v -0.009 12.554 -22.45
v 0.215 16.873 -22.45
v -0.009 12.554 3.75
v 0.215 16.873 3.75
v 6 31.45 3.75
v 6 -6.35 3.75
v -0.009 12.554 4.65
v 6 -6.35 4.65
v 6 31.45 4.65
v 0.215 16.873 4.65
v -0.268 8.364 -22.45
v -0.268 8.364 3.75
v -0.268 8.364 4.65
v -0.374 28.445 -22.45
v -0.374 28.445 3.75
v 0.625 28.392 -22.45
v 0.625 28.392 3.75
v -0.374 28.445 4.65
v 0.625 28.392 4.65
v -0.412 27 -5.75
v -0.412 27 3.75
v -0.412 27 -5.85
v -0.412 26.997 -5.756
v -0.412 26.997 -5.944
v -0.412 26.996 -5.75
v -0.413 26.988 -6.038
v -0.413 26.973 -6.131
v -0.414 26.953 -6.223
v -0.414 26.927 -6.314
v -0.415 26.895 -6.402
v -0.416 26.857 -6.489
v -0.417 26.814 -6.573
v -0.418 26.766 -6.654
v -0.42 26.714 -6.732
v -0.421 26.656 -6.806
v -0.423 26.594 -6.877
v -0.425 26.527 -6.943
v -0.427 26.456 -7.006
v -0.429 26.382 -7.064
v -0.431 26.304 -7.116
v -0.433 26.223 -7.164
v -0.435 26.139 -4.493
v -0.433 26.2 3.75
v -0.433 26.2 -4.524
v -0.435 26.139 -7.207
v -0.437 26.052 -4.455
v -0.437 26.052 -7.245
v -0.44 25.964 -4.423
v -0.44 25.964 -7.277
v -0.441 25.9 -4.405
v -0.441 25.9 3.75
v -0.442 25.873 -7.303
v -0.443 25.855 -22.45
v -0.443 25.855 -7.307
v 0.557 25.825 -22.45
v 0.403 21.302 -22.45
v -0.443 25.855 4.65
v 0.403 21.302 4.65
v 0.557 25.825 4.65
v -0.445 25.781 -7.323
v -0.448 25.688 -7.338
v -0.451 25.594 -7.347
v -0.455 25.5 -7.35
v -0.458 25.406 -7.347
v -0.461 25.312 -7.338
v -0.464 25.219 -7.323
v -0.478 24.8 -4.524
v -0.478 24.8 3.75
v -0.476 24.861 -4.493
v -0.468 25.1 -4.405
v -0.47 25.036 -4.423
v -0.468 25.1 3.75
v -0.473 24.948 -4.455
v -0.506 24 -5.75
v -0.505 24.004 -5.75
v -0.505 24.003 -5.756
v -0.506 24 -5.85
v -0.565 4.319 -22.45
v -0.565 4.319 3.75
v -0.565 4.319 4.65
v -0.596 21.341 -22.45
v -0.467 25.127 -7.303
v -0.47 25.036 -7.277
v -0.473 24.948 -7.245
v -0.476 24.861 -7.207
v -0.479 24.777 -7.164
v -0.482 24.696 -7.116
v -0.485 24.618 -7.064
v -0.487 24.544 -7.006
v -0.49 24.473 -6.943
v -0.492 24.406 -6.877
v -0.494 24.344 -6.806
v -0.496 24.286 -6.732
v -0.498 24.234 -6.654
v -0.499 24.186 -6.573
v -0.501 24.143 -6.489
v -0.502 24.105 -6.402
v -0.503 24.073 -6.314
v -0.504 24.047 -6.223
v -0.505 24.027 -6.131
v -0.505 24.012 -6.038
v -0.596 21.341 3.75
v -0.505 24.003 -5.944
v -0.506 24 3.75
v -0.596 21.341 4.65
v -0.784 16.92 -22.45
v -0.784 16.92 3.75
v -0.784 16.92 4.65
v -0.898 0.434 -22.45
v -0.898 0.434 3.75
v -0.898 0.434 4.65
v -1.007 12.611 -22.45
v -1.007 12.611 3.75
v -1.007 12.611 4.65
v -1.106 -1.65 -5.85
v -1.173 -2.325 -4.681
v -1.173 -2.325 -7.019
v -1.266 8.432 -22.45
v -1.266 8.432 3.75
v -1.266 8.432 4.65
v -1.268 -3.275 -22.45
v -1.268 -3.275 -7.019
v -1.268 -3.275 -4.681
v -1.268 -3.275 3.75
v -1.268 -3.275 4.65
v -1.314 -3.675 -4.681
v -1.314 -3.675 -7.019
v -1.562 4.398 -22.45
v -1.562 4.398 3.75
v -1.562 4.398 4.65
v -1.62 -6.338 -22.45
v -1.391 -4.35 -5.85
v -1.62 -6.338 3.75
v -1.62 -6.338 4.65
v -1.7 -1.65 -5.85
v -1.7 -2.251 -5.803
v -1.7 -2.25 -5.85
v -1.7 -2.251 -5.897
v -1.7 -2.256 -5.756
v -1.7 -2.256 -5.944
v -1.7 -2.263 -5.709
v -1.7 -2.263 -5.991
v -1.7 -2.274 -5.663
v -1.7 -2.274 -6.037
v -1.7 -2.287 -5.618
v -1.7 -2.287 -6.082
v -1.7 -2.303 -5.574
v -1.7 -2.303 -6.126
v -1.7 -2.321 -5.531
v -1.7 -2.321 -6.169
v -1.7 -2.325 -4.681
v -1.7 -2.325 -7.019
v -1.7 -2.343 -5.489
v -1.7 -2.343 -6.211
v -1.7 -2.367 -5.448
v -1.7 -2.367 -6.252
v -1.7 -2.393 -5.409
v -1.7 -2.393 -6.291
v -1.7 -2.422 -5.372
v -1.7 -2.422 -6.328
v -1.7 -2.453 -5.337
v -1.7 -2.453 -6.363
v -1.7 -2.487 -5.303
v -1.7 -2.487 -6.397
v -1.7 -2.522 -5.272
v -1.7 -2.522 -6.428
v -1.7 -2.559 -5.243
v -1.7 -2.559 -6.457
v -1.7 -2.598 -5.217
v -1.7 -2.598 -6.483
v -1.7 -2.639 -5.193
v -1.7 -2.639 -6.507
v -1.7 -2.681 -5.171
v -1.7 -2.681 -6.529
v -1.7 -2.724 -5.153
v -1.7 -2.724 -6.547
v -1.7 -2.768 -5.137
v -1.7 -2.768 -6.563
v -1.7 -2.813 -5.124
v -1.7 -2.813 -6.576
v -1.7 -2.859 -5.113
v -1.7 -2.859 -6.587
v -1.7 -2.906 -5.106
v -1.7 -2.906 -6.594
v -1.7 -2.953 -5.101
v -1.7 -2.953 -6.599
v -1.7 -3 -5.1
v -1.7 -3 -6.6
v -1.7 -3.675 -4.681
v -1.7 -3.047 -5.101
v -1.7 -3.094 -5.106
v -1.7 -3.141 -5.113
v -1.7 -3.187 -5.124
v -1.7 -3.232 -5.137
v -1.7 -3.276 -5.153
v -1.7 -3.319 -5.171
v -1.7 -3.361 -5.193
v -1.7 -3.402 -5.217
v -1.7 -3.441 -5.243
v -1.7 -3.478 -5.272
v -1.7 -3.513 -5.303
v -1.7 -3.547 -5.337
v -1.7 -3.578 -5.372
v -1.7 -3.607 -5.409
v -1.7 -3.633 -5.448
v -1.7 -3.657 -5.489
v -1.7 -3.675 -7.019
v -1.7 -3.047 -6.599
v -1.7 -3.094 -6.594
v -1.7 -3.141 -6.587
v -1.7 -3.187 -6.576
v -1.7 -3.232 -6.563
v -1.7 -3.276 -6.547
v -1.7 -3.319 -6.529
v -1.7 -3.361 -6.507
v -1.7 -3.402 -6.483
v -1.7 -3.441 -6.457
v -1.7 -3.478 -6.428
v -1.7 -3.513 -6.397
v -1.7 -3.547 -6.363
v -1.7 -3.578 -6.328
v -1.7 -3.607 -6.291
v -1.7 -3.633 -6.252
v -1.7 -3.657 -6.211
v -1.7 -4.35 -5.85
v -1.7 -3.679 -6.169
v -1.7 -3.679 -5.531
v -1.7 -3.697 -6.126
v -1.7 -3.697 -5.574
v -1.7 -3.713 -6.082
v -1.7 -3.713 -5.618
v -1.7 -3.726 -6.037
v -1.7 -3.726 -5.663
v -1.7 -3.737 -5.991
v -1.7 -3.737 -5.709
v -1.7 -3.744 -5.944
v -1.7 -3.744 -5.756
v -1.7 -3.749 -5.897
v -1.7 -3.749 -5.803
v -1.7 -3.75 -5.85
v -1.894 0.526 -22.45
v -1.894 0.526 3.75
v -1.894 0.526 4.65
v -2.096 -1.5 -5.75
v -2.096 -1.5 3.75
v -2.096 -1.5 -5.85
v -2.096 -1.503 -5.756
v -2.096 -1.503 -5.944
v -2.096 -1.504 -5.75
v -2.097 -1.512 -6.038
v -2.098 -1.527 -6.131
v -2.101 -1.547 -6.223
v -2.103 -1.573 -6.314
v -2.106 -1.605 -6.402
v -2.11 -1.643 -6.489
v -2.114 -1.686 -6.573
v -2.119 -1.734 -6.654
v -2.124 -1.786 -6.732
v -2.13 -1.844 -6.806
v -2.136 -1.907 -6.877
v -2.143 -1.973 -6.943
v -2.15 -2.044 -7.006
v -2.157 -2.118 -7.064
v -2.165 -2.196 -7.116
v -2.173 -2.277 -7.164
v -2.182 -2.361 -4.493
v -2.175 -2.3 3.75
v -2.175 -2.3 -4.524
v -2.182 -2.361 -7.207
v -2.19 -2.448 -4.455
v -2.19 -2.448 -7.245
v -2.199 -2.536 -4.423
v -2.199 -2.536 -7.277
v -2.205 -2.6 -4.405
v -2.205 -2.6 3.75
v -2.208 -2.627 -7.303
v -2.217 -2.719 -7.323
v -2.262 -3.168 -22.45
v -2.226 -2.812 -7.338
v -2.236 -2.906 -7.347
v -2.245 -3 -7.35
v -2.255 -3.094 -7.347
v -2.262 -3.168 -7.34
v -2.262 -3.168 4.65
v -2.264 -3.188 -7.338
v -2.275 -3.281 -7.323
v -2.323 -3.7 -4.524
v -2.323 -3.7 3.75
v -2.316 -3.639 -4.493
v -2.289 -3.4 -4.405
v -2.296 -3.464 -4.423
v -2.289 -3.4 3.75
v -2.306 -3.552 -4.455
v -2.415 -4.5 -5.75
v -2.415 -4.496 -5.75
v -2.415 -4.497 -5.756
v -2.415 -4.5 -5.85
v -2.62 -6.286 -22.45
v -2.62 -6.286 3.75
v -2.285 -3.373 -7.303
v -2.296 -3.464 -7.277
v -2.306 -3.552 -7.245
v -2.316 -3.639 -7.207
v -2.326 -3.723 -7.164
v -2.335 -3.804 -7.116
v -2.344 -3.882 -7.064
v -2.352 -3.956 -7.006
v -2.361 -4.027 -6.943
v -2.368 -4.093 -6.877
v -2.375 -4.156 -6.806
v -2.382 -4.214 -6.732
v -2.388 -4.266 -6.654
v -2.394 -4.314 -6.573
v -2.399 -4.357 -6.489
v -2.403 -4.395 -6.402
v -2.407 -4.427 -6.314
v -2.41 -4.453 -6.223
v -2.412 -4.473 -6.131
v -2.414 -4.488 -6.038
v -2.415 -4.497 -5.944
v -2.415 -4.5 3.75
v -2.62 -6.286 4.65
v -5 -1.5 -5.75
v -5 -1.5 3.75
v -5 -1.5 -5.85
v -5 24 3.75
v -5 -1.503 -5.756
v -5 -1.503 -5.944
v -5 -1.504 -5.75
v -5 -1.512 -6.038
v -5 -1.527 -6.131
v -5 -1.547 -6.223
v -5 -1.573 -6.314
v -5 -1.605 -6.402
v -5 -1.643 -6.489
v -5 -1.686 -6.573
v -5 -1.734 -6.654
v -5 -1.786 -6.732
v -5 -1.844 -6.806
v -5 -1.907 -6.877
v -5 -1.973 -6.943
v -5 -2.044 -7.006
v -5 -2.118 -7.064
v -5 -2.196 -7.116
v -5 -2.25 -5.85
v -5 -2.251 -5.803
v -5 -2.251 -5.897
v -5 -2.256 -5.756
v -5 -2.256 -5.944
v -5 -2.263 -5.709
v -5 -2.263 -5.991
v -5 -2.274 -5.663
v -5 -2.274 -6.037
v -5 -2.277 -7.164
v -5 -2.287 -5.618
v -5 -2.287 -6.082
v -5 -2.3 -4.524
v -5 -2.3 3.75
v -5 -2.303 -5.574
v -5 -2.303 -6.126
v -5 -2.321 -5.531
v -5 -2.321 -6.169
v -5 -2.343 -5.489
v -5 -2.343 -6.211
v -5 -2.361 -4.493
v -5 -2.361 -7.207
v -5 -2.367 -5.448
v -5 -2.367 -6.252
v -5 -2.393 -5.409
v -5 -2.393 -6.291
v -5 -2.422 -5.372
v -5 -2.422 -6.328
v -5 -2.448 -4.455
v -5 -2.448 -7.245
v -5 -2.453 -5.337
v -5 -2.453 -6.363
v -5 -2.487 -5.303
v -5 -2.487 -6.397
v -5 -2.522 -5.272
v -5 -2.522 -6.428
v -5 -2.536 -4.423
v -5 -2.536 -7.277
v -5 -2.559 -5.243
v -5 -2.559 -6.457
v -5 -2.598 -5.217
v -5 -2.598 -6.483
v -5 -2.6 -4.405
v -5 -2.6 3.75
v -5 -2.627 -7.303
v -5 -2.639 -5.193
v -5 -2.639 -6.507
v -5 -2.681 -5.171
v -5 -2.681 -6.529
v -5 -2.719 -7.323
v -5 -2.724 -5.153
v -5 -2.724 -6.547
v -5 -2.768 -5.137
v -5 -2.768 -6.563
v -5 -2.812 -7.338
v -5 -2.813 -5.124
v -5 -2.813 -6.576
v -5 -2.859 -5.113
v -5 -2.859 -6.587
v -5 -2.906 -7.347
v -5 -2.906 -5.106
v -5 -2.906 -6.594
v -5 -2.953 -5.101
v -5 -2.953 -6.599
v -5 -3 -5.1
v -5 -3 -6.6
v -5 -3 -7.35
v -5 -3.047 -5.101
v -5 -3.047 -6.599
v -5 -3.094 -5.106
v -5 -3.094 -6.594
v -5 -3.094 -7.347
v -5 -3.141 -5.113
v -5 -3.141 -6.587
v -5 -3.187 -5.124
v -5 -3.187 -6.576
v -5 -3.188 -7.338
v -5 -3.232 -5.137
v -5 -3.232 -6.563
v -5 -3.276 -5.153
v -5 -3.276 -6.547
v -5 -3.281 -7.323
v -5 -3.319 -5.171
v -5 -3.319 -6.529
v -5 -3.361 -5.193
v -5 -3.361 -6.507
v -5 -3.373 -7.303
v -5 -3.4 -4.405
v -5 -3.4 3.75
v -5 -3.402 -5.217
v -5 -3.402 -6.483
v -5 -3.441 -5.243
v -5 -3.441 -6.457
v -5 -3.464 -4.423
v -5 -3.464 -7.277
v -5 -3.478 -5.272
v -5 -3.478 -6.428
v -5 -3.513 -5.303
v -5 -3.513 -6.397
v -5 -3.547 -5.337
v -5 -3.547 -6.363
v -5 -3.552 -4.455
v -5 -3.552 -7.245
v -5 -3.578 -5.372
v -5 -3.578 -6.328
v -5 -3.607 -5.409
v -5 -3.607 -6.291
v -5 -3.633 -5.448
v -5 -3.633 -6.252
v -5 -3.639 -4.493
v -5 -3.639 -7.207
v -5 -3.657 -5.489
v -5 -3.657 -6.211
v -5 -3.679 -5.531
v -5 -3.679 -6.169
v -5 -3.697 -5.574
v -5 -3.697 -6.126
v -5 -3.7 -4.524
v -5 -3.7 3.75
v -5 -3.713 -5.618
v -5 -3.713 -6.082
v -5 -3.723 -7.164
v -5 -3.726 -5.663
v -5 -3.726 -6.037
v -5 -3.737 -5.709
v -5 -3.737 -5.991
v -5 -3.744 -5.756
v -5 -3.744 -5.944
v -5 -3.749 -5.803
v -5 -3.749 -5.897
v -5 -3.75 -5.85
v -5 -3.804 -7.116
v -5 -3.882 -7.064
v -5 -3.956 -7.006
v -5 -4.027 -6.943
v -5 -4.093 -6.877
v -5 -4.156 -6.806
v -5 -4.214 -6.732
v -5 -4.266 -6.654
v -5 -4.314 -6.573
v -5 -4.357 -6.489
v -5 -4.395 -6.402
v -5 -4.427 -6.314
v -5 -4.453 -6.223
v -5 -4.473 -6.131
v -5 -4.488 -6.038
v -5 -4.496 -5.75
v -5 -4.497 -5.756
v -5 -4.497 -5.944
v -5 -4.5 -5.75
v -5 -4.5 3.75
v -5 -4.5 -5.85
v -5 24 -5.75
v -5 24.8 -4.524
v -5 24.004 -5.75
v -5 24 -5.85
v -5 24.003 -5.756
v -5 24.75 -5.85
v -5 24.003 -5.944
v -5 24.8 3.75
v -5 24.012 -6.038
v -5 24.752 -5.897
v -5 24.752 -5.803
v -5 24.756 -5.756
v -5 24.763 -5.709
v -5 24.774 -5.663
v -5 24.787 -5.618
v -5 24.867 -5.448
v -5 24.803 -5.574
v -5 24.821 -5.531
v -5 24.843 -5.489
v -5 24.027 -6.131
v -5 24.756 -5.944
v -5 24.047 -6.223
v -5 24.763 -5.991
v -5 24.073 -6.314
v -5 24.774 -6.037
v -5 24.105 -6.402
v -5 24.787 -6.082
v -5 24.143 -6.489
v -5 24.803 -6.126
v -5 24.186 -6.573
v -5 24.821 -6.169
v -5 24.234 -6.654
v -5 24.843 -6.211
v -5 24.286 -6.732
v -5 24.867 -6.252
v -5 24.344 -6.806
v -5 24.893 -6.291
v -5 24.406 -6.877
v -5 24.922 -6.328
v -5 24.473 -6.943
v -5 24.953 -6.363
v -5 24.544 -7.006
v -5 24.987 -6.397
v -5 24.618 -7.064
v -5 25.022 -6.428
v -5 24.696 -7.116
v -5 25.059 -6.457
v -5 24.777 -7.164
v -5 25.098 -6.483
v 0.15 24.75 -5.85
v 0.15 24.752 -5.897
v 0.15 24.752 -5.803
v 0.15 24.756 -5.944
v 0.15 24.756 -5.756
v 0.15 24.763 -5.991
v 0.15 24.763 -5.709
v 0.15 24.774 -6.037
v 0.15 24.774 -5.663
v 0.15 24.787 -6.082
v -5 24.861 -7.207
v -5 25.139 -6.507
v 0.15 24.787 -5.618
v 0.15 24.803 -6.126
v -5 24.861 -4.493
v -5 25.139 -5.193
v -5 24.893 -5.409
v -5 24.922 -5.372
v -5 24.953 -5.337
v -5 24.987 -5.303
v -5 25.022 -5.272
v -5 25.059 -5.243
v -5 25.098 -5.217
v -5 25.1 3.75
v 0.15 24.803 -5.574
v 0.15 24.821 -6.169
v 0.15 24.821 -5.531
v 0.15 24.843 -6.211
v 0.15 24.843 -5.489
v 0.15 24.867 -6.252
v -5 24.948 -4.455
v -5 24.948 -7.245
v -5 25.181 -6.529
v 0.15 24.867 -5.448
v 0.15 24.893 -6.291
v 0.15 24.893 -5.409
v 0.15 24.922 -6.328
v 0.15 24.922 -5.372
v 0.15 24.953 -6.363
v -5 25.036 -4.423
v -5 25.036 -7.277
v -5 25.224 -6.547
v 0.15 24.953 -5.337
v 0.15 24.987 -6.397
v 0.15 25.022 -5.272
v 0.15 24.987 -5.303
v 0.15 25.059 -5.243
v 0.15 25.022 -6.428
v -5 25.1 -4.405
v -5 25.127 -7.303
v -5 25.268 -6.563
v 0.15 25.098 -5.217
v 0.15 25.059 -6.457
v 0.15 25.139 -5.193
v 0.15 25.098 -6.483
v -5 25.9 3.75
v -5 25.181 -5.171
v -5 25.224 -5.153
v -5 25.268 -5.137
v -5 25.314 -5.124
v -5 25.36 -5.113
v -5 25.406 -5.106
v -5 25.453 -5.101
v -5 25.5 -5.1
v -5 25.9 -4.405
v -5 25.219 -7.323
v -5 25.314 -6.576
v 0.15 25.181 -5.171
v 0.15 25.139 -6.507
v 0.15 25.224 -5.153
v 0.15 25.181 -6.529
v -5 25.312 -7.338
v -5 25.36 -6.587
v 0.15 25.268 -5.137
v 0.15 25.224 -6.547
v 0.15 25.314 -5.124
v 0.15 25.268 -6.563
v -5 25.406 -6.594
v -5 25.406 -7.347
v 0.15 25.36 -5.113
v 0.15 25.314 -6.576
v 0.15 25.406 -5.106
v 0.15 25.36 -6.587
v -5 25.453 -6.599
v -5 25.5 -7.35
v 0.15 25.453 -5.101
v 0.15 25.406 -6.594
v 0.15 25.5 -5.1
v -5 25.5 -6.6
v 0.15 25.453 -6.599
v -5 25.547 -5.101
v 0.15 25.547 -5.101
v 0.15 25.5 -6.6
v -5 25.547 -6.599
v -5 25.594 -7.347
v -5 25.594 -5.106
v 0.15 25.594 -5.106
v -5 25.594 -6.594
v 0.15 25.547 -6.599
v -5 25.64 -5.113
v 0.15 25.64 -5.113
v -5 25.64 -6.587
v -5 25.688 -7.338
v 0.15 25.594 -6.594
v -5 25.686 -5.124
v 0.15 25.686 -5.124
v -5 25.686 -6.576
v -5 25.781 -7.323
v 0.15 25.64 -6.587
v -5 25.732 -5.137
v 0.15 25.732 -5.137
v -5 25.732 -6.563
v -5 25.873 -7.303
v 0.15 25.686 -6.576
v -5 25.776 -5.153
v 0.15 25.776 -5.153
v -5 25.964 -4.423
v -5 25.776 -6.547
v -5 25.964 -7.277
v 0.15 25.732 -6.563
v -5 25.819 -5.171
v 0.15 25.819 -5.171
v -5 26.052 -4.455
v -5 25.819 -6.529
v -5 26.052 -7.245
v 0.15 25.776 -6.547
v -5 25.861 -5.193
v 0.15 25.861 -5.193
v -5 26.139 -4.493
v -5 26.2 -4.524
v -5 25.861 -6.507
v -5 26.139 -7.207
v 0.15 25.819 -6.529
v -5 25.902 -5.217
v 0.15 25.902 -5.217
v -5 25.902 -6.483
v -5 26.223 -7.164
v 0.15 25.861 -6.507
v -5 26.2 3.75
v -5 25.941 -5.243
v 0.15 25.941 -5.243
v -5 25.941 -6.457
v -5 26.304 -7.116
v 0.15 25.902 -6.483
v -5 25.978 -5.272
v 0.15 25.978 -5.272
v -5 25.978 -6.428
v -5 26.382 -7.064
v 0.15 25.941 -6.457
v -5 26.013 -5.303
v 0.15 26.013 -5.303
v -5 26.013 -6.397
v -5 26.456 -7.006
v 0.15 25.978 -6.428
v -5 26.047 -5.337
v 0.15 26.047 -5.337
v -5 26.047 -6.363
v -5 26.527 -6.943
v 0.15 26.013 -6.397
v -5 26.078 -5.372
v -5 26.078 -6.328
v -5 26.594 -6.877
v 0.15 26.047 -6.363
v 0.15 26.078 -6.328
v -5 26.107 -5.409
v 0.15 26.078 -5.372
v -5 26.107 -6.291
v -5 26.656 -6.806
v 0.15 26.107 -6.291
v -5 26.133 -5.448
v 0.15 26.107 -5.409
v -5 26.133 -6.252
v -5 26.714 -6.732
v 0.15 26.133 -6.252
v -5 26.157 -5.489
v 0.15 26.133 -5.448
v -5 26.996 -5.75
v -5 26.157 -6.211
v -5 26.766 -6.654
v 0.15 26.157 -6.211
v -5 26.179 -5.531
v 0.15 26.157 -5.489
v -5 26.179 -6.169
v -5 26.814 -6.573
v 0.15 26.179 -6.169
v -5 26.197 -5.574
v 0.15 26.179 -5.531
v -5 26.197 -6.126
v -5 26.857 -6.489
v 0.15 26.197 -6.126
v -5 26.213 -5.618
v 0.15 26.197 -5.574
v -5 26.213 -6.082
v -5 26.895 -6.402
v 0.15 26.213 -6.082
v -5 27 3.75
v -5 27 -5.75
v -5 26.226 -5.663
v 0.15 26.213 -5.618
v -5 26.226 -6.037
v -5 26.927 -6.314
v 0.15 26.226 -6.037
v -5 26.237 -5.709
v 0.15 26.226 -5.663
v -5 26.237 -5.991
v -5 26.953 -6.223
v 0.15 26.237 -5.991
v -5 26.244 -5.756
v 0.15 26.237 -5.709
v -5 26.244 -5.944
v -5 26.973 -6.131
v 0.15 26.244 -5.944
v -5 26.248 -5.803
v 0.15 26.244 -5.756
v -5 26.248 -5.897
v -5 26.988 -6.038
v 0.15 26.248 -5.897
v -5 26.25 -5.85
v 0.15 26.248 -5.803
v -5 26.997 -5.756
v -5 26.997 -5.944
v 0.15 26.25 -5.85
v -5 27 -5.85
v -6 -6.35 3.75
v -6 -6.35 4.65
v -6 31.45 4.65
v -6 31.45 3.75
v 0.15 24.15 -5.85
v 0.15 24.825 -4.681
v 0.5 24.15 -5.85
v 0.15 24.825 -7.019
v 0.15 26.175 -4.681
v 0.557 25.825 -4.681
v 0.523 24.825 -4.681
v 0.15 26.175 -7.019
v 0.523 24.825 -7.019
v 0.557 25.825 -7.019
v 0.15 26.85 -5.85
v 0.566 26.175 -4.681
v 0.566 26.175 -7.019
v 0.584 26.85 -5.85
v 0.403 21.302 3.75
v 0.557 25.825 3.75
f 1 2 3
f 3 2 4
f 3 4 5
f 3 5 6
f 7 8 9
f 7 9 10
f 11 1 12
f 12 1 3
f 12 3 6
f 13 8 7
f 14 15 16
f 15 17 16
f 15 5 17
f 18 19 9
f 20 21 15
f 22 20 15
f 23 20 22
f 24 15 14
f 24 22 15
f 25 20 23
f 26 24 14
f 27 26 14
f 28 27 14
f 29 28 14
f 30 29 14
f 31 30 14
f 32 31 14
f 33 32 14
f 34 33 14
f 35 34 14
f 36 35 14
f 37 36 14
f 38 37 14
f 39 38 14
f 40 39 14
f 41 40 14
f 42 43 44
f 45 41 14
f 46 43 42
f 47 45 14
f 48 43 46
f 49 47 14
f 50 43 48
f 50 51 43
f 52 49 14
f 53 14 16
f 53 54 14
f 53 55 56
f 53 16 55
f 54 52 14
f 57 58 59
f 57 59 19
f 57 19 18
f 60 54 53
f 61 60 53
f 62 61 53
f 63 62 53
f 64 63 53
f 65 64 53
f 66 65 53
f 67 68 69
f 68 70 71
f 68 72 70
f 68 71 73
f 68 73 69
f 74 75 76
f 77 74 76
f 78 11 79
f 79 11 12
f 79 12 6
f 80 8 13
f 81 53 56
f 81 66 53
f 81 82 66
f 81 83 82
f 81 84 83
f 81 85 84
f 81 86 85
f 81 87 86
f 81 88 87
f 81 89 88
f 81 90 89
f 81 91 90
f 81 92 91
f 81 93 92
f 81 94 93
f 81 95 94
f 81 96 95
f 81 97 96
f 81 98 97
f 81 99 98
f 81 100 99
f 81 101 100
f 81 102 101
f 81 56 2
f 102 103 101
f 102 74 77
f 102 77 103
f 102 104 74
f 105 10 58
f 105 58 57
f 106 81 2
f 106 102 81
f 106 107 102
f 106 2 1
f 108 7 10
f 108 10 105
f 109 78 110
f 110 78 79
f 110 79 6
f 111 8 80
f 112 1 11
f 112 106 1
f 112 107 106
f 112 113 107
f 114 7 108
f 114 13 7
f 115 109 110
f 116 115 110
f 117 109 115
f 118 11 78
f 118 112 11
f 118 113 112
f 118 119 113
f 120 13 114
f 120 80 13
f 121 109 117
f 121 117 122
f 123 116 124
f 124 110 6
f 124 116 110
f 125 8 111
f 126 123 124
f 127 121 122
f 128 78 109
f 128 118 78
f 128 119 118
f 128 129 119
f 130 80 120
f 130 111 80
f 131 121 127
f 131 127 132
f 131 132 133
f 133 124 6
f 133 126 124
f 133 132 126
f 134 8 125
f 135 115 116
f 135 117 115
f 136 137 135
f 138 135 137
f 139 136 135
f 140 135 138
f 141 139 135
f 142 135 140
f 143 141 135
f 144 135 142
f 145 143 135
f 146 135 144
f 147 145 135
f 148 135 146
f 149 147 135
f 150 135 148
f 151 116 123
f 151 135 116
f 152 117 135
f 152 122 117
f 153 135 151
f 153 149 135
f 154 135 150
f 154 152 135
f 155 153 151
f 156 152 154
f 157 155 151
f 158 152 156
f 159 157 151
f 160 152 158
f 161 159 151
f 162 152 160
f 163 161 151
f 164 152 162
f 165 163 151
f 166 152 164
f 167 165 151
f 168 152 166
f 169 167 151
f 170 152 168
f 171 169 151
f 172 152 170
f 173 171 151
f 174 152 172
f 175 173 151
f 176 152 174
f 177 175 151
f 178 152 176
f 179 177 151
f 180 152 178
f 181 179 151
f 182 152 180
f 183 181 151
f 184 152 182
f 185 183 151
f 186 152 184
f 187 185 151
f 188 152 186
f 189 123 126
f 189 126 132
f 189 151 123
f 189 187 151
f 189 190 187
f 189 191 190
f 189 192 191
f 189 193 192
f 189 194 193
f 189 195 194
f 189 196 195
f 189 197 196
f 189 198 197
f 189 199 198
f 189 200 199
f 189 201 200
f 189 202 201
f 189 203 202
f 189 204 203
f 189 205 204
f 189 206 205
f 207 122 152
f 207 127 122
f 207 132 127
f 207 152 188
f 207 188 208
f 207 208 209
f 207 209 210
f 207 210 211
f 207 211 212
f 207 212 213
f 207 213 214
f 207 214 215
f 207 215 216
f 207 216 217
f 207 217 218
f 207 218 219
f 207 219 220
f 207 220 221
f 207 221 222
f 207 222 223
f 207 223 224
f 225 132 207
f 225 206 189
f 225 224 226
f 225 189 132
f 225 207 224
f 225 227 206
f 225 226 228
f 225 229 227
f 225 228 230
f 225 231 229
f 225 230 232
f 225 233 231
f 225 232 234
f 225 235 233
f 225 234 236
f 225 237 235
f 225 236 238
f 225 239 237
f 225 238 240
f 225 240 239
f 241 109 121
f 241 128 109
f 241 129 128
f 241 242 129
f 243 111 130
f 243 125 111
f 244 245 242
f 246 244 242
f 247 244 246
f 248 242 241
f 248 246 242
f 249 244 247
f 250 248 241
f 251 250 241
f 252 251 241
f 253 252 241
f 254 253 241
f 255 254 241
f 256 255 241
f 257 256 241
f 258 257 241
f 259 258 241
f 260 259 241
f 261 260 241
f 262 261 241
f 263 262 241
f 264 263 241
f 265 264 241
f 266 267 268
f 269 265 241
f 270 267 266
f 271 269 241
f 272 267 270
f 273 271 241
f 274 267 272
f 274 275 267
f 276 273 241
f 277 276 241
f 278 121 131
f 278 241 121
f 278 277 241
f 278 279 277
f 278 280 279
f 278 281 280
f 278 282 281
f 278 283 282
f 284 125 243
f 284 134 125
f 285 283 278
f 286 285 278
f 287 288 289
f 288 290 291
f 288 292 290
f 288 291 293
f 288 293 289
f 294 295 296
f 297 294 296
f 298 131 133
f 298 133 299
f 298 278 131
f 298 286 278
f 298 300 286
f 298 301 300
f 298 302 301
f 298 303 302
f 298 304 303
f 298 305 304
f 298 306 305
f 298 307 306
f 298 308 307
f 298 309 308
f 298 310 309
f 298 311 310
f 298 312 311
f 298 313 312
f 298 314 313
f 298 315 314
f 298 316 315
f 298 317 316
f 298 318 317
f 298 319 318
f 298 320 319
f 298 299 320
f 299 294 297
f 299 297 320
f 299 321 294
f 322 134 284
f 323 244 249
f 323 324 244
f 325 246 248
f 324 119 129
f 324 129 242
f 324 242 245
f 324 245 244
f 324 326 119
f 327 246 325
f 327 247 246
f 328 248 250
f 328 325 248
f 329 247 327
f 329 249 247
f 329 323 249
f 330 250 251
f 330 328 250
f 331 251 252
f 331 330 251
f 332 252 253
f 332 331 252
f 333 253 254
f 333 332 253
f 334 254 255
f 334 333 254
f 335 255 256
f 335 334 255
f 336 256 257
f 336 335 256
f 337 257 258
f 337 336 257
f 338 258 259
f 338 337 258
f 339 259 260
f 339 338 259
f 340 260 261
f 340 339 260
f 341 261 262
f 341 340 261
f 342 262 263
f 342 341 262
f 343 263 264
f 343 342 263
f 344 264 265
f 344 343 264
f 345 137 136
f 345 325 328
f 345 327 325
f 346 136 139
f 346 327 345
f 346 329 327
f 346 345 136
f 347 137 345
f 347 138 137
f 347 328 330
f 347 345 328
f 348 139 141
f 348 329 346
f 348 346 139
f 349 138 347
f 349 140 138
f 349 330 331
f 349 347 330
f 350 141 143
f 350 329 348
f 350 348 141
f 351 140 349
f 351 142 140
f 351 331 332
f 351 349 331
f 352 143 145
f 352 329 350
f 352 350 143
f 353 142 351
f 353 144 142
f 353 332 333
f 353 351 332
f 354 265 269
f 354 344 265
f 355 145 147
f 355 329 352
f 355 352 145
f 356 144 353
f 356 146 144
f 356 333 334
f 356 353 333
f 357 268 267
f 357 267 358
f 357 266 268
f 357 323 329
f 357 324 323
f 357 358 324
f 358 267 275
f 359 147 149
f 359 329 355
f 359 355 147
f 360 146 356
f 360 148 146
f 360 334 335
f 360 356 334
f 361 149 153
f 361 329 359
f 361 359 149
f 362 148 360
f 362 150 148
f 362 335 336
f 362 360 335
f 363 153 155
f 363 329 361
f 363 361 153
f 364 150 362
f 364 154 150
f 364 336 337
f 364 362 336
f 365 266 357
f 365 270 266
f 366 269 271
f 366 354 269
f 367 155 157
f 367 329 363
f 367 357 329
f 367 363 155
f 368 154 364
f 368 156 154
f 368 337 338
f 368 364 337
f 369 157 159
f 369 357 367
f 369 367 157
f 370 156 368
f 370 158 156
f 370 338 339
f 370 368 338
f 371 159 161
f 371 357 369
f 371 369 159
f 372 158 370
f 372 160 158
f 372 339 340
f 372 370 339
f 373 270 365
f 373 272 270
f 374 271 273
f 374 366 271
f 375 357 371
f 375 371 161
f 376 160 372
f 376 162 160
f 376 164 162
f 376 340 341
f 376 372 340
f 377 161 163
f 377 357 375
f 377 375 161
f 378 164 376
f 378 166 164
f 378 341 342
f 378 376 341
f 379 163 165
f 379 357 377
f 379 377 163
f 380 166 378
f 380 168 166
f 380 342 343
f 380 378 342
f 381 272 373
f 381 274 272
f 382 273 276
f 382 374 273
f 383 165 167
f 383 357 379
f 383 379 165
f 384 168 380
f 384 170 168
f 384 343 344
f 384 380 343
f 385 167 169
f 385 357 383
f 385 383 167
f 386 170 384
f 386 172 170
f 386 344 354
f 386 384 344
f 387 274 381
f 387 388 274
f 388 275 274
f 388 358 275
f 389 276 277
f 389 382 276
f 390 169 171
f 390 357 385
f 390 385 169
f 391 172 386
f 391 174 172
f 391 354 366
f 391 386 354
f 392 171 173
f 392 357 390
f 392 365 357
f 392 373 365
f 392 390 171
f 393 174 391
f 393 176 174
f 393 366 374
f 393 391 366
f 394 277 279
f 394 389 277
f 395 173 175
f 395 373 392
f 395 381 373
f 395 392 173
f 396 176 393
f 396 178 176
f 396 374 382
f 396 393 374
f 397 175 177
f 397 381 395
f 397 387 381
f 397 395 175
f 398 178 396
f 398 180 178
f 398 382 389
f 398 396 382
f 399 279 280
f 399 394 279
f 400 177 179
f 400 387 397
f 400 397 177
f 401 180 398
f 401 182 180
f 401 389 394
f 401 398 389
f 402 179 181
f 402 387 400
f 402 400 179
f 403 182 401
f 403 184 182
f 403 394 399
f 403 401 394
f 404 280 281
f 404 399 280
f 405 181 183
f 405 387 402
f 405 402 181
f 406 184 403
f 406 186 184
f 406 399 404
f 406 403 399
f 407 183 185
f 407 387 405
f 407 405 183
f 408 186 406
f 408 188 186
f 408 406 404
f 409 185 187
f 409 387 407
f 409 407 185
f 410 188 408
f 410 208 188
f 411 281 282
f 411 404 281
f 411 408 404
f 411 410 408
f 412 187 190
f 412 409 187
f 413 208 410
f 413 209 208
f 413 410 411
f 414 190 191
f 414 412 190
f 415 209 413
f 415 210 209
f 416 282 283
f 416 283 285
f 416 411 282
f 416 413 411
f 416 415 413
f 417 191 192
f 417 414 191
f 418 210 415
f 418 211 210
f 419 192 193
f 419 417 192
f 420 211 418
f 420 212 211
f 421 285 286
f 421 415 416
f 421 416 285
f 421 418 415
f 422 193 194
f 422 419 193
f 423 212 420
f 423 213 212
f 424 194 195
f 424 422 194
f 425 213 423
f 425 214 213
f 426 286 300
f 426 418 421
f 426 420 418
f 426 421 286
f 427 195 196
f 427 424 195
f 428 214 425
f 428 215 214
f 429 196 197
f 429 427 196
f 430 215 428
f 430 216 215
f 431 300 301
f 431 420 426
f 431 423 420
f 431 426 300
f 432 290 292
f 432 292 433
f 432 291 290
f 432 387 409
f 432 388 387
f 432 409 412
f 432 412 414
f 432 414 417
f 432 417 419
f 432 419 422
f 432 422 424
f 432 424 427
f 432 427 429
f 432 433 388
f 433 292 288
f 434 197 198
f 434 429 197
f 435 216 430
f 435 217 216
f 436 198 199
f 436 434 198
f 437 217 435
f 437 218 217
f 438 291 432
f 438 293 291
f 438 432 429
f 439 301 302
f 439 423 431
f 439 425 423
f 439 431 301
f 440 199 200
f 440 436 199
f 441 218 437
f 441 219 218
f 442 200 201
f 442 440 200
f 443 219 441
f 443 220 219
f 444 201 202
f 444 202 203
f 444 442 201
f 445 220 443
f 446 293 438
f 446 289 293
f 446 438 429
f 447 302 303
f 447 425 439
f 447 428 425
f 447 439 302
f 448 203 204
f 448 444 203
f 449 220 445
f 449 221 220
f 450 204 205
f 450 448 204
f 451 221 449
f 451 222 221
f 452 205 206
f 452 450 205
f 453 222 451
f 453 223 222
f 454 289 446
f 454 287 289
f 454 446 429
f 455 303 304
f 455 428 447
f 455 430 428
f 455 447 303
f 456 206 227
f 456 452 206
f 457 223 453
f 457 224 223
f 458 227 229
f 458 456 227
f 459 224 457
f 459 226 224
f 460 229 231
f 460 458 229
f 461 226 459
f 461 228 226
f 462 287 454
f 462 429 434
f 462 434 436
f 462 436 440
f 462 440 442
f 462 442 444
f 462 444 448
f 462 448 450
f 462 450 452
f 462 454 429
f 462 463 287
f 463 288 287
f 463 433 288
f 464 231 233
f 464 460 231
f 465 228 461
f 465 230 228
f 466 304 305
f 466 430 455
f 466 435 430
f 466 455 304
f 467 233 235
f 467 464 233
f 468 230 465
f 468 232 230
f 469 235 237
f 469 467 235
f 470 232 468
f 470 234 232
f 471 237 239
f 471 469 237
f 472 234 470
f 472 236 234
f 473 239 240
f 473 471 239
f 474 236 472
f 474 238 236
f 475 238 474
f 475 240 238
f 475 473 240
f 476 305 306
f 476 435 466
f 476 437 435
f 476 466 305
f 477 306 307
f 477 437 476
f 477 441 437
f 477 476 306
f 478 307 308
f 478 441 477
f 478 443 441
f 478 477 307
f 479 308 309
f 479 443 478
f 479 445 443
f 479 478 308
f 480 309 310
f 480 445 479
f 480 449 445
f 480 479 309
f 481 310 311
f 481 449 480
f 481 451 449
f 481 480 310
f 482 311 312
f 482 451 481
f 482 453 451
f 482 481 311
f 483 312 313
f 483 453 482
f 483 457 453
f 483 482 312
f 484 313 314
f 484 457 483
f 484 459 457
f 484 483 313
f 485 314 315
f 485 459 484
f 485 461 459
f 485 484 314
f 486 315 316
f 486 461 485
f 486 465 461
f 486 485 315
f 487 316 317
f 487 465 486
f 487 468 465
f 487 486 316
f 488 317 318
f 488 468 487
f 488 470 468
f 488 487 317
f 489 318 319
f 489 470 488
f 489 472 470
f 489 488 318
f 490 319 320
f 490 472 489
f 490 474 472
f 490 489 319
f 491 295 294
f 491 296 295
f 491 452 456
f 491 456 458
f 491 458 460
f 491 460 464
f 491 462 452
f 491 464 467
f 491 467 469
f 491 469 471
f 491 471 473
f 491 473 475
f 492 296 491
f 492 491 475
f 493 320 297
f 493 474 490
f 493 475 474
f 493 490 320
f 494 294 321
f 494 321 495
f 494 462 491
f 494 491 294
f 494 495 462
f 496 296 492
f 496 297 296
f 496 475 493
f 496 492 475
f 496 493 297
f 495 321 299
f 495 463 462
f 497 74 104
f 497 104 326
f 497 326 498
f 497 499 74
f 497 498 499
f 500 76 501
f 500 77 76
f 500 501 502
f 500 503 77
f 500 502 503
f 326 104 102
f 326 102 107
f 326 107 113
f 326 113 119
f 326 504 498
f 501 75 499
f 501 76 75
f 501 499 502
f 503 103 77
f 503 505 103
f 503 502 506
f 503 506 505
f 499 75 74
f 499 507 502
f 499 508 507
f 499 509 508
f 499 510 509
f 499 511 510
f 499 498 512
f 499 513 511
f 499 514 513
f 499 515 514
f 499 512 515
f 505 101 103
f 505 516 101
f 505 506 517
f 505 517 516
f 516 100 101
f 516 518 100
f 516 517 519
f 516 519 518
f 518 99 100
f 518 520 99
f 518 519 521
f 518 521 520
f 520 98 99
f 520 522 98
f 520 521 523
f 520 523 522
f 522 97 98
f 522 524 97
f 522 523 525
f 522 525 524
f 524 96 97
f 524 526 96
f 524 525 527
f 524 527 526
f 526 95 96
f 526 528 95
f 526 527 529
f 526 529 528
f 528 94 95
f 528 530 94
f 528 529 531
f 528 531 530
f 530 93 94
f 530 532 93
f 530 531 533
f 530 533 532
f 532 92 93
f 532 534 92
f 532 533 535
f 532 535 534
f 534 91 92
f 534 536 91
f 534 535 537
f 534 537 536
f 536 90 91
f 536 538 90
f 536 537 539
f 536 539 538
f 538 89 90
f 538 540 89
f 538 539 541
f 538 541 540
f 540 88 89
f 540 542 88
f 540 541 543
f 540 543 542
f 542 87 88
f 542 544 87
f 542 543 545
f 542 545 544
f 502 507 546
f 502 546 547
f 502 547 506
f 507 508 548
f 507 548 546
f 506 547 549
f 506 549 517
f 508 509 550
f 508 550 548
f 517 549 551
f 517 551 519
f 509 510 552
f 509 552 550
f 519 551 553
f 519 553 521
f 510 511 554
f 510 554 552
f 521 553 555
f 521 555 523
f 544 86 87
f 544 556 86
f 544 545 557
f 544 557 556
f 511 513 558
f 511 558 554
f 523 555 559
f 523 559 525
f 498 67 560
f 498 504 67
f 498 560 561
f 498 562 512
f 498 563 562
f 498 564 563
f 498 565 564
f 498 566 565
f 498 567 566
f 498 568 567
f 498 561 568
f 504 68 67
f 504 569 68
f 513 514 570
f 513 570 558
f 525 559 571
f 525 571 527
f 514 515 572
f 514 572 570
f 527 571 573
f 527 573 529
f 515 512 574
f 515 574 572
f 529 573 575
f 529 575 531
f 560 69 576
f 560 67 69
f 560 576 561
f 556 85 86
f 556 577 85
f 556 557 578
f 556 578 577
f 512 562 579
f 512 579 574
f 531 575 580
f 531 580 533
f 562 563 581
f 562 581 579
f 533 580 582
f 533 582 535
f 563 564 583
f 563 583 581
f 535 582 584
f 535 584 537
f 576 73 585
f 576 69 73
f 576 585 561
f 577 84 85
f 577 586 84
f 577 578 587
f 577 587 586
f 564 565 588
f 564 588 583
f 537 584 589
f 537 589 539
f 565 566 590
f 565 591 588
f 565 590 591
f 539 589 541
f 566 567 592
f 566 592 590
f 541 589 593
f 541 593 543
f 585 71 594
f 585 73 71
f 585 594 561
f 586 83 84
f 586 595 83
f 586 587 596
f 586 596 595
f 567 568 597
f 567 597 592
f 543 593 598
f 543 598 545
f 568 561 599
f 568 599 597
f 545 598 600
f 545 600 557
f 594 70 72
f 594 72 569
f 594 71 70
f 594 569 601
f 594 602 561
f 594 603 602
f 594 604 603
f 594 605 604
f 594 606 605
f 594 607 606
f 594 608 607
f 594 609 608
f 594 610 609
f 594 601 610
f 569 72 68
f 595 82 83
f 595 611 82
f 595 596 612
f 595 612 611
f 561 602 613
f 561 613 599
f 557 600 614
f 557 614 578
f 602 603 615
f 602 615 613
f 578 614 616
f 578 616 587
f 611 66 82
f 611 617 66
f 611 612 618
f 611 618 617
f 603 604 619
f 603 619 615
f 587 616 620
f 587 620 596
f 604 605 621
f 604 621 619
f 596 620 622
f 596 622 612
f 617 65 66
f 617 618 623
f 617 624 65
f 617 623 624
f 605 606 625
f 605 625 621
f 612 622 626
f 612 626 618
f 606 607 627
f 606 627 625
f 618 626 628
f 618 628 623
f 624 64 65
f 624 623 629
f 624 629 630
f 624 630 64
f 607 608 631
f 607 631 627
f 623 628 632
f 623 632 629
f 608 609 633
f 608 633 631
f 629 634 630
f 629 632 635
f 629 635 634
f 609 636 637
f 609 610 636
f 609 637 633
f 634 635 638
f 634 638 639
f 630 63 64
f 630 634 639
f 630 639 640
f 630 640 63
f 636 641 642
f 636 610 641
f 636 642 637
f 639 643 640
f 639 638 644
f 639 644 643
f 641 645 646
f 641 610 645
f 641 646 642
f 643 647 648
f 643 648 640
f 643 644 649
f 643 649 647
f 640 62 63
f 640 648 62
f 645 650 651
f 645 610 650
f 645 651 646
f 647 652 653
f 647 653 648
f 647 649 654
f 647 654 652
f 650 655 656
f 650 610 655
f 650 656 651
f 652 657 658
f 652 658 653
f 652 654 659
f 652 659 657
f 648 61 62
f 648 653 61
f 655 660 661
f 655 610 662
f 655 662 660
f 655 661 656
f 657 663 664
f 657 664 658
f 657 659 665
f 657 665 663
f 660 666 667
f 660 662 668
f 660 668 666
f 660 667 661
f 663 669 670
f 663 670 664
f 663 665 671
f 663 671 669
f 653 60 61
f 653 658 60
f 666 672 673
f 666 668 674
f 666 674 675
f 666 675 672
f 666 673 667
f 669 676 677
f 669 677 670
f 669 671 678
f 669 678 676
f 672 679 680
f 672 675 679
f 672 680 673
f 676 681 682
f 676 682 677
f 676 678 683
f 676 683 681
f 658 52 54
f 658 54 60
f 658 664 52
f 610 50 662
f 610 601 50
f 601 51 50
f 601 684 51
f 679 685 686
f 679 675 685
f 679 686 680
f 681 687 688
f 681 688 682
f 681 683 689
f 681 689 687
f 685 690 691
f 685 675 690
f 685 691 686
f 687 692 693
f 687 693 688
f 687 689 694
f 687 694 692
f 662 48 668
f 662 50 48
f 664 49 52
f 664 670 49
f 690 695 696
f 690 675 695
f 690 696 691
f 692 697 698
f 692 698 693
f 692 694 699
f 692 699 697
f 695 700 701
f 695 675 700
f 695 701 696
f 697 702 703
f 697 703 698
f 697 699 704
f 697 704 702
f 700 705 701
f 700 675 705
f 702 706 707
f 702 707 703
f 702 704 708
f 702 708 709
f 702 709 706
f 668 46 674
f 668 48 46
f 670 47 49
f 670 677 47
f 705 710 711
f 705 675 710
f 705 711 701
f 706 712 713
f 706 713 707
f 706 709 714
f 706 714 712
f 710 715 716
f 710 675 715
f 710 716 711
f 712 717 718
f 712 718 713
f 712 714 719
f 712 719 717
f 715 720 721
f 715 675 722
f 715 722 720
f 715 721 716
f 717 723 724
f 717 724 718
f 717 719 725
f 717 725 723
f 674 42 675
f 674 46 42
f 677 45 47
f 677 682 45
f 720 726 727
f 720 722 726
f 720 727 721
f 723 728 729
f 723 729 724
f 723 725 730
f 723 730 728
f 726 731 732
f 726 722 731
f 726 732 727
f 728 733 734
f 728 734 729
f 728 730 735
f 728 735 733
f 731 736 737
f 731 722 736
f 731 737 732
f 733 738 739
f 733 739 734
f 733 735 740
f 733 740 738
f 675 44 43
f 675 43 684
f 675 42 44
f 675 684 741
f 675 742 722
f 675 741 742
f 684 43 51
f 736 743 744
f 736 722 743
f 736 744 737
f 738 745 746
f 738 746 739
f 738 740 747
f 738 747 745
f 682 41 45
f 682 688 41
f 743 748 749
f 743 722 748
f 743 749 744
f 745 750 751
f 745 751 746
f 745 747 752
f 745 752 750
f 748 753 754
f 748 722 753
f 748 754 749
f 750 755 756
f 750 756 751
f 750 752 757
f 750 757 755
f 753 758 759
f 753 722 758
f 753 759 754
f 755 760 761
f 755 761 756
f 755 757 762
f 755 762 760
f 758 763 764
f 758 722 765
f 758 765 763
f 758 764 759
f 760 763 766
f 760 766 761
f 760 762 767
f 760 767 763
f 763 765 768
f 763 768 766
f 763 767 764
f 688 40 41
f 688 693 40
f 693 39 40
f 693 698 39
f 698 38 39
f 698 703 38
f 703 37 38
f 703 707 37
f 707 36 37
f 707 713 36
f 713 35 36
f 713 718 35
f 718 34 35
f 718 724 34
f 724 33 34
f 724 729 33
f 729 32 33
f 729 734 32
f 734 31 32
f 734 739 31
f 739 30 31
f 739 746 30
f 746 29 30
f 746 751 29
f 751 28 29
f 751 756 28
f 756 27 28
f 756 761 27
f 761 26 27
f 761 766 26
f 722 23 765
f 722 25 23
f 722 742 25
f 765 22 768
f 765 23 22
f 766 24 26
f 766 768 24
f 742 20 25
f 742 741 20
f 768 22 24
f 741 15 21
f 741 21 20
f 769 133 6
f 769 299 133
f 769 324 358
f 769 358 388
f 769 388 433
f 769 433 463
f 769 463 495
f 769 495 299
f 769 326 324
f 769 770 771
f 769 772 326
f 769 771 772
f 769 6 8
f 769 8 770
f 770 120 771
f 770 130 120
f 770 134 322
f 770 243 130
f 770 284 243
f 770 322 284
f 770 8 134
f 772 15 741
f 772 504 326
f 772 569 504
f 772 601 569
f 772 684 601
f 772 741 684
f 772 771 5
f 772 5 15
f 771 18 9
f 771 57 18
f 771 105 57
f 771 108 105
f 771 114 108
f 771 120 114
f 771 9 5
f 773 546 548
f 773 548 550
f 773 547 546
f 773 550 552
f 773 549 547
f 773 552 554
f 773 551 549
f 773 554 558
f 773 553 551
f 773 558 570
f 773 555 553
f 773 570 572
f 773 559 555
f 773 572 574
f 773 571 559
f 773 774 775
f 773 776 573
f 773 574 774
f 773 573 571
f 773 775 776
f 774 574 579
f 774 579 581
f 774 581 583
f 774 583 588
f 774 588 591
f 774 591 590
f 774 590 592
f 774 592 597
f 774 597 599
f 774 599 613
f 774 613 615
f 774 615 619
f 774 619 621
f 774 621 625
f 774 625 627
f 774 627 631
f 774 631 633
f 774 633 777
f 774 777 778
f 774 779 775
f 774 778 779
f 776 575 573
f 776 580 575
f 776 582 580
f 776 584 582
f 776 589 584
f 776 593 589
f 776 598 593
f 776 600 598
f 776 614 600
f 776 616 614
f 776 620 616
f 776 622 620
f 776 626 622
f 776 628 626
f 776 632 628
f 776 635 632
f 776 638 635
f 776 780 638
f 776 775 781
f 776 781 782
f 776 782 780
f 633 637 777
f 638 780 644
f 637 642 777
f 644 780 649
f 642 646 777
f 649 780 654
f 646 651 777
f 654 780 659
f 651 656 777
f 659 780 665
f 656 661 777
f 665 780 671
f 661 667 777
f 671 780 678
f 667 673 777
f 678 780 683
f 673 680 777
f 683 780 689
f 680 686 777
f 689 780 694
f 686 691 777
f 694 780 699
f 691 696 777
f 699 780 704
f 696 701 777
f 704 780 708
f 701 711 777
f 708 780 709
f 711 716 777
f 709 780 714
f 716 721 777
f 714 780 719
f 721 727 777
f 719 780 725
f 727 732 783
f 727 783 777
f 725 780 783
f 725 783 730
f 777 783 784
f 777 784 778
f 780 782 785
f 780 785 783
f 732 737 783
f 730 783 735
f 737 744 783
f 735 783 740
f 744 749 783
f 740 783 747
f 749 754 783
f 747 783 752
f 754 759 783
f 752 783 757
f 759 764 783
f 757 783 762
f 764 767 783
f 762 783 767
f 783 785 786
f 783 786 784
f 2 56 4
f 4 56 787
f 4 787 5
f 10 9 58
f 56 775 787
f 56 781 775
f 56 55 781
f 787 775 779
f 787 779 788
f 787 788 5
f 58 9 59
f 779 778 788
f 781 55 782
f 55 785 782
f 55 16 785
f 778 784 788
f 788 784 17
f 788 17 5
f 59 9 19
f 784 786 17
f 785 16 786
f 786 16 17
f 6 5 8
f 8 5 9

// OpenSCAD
// file: lib/naca4.scad
// Naca4.scad - library for parametric airfoils of 4 digit NACA series
// Code: Rudolf Huttary, Berlin 
// June 2015
// commercial use prohibited


// general use: for more examples refer to sampler.scad
// naca = naca digits or 3el vector  (default = 12 or [0, 0, .12])
// L    = chord length [mm]      (default= 100)
// N    = # sample points        (default= 81)
// h    = height [mm]            (default= 1)
// open = close at the thin end? (default = true)
// two equivalent example calls
 airfoil(naca = 2408, L = 60, N=1001, h = 30, open = false); 
// airfoil(naca = [.2, .4, .32], L = 60, N=1001, h = 30, open = false); 

module help()
{
  echo(str("\n\nList of signatures in lib:\n=================\n", 
  "module airfoil(naca=2412, L = 100, N = 81, h = 1, open = false) - renders airfoil object\n", 
  "module airfoil(naca=[.2, .4, .12], L = 100, N = 81, h = 1, open = false) - renders airfoil object using percentage for camber,  camber distance and thicknes\n", 
  "function airfoil_data(naca=12, L = 100, N = 81, open = false)\n",
  "=================\n")); 
}

help(); 
// this is the object
module airfoil(naca=12, L = 100, N = 81, h = 1, open = false)
{
  linear_extrude(height = h)
  polygon(points = airfoil_data(naca, L, N, open)); 
}

module hollow_airfoil(lnaca=12, L = 100, N = 81, h = 1, open = false, wall_thickness = 1)
{
    if (open){
        linear_extrude(height = h)

        if (wall_thickness>0){
            difference(){
                polygon(points = airfoil_data(naca, L, N, false));
                offset(delta = - wall_thickness, chamfer = false) polygon(points = airfoil_data(naca, L, N, open = false));
            }
        }
        else{
            difference(){
                offset(delta = - wall_thickness, chamfer = false) polygon(points = airfoil_data(naca, L, N, open = false));
                polygon(points = airfoil_data(naca, L, N, false));
            }
        }
    }
    else{

        linear_extrude(height = abs(wall_thickness))
            polygon(points = airfoil_data(naca, L, N, false)); 

        linear_extrude(height = h)
            difference(){
                polygon(points = airfoil_data(naca, L, N, open));
                offset(delta = - wall_thickness) polygon(points = airfoil_data(naca, L, N, open = false));
            }

        translate([0,0, h - wall_thickness])
            linear_extrude(height = abs(wall_thickness))
                polygon(points = airfoil_data(naca, L, N, false)); 

    }
}


// this is the main function providing the airfoil data
function airfoil_data(naca=12, L = 100, N = 81, open = false) = 
  let(Na = len(naca)!=3?NACA(naca):naca)
  let(A = [.2969, -0.126, -.3516, .2843, open?-0.1015:-0.1036])
  [for (b=[-180:360/(N):179.99]) 
    let (x = (1-cos(b))/2)  
    let(yt = sign(b)*Na[2]/.2*(A*[sqrt(x), x, x*x, x*x*x, x*x*x*x])) 
    Na[0]==0?L*[x, yt]:L*camber(x, yt, Na[0], Na[1], sign(b))];  


function trailing_edge_angle(naca=12, open = false) = 
  let(Na = len(naca)!=3?NACA(naca):naca)
  let(A = [.2969, -0.126, -.3516, .2843, open?-0.1015:-0.1036])
  let (x =0.999)  // set x near to airfoil trailing edge
  let(yt = Na[2]/.2*(A*[sqrt(x), x, x*x, x*x*x, x*x*x*x])) // calculate distance from x-axis at previously set position
  atan2(yt,1-x);  // calculate angle of triangle between end of airfoil. The triange height corresponds to previously calculated distance from x-axis

function surface_angle(x = 0.5, naca=12, open = false) = 
  let(Na = len(naca)!=3?NACA(naca):naca)
  let(A = [0.2969, -0.126, -0.3516, 0.2843, open?-0.1015:-0.1036])
  let(dy = Na[2]/0.2*(A*[(1/2)*(1/sqrt(x)), 1, 2*x, 3*x*x, 4*x*x*x])) // calculate derivative of airfoil function at the x point
  atan(dy);  // calculate  the angle from function derivative

function surface_distance(x = 0.5, naca=12, open = false) = 
  let(Na = len(naca)!=3?NACA(naca):naca)
  let(A = [0.2969, -0.126, -0.3516, 0.2843, open?-0.1015:-0.1036])
  Na[2]/.2*(A*[sqrt(x), x, x*x, x*x*x, x*x*x*x]); // calculate distance from x-axis at previously set position

// helper functions
function NACA(naca) = 
  let (M = floor(naca/1000))
  let (P = floor((naca-M*1000)/100)) 
  [M/100, P/10, floor(naca-M*1000-P*100)/100];  

function camber(x, y, M, P, upper) = 
  let(yc = (x<P)?M/P/P*(2*P*x-x*x): M/(1-P)/(1-P)*(1 - 2*P + 2*P*x -x*x))
  let(dy = (x<P)?2*M/P/P*(P-x):2*M/(1-P)/(1-P)*(P-x))
  let(th = atan(dy))
  [upper ? x - y*sin(th):x + y*sin(th), upper ? yc + y*cos(th):yc - y*cos(th)];
// main file
draft = true;

module 888_3014(draft){

zmenseni = 0.2;	//zmenšení šířky víčka
	difference(){

				union(){
				//tvar víčka
					translate([-143 - 6,-19.8,-30]) //hrubé srovnání k počátku
							    intersection(){
							        translate ([140,75,-0.1]) // elementar Z shift to improve adhesion on the printig surface
							            rotate([90,-87,0])
							                hollow_airfoil(naca = 0009, L = 150, N = draft ? 50 : 100, h = 150, open = false); //dutý profil
							     
							        translate([143,19.8,30])
							            rotate([0,3,0])
							                union(){
							                    translate([-6, -(22.8 - 19.3) - 1.25 + zmenseni/2, -4.95 - 1 - 0.25 + zmenseni/2])
							                       	cube([13.5,22.8 + 4.5 - zmenseni, 32.5 + 2 + 0.5 - zmenseni]);
							               	}
							    }
				//sloupek
								difference(){
									translate([-5, 2 + 2 + 1.8/2 + Servo_screw/2 + 0.2,-2  - 1])
										rotate([0,90,0])
											cylinder(h = 3.55, r = Servo_screw, $fn = draft ? 50 : 100);

									translate([-5 - global_clearance/2, 2 + 2 + 1.8/2 + Servo_screw/2 + 0.2,-2  - 1])
										rotate([0,90,0])
											cylinder(h = 15 + global_clearance, r = Servo_screw/2, $fn = draft ? 50 : 100);
								}
				//sloupek
								difference(){
									translate([0,0,28.5])
										translate([-5, 2 + 2 + 1.8/2 + Servo_screw/2 + 0.2,-2  - 1])
											rotate([0,90,0])
												cylinder(h = 5.4, r = Servo_screw, $fn = draft ? 50 : 100);

									translate([0,0,28.5])
										translate([-5 - global_clearance/2, 2 + 2 + 1.8/2 + Servo_screw/2 + 0.2,-2  - 1])
											rotate([0,90,0])
												cylinder(h = 15 + global_clearance, r = Servo_screw/2, $fn = draft ? 50 : 100);
								}
				//podpora
					translate([-6,-4.65, - 6.35])
						color([0,0.9,0])
							cube ([12,0.9,37.8]);

					translate([-5,-4.65,-3.4])
						color([0,0.9,0])
							cube ([3.55,9.1,0.8]);

					translate([-5,-4.65,-4.5])
						color([0,0.9,0])
							cube ([3.55,10.4,0.8]);

					translate([-5,-4.65,-2.3])
						color([0,0.9,0])
							cube ([3.55,10.4,0.8]);

					translate([-5,-4.65,-3.4 + 28.5])
						color([0,0.9,0])
							cube ([5.4,9.1,0.8]);

					translate([-5,-4.65,-4.5 + 28.5])
						color([0,0.9,0])
							cube ([5.4,10.4,0.8]);

					translate([-5,-4.65,-2.3 + 28.5])
						color([0,0.9,0])
							cube ([5.4,10.4,0.8]);

				}
		//otvor pro šroub a matku ve víčku
		translate([-5 - global_clearance/2, 2 + 2 + 1.8/2 + Servo_screw/2 + 0.2,-2  - 1])
			rotate([0,90,0])
				cylinder(h = 15 + global_clearance, r = Servo_screw/2, $fn = draft ? 50 : 100);
		translate([-5 - global_clearance/2 + 3.55, 2 + 2 + 1.8/2 + Servo_screw/2 + 0.2,-2  - 1])
	      	rotate([0,90,0])
	    	    cylinder(h = Servo_nut_height, r = Servo_nut_diameter/2, $fn = 6);

		translate([0,0,28.5])
			translate([-5 - global_clearance/2, 2 + 2 + 1.8/2 + Servo_screw/2 + 0.2,-2  - 1])
				rotate([0,90,0])
					cylinder(h = 15 + global_clearance, r = Servo_screw/2, $fn = draft ? 50 : 100);
		translate([0,0,28.5])
			translate([-5 - global_clearance/2 + 5.4, 2 + 2 + 1.8/2 + Servo_screw/2 + 0.2,-2  - 1])
	          	rotate([0,90,0])
		      		cylinder(h = Servo_nut_height, r = Servo_nut_diameter/2, $fn = 6);
	}
}

rotate([-90,0,0])
888_3014();




use <888_1012.scad>

use <./lib/naca4.scad>
include <../parameters.scad>
